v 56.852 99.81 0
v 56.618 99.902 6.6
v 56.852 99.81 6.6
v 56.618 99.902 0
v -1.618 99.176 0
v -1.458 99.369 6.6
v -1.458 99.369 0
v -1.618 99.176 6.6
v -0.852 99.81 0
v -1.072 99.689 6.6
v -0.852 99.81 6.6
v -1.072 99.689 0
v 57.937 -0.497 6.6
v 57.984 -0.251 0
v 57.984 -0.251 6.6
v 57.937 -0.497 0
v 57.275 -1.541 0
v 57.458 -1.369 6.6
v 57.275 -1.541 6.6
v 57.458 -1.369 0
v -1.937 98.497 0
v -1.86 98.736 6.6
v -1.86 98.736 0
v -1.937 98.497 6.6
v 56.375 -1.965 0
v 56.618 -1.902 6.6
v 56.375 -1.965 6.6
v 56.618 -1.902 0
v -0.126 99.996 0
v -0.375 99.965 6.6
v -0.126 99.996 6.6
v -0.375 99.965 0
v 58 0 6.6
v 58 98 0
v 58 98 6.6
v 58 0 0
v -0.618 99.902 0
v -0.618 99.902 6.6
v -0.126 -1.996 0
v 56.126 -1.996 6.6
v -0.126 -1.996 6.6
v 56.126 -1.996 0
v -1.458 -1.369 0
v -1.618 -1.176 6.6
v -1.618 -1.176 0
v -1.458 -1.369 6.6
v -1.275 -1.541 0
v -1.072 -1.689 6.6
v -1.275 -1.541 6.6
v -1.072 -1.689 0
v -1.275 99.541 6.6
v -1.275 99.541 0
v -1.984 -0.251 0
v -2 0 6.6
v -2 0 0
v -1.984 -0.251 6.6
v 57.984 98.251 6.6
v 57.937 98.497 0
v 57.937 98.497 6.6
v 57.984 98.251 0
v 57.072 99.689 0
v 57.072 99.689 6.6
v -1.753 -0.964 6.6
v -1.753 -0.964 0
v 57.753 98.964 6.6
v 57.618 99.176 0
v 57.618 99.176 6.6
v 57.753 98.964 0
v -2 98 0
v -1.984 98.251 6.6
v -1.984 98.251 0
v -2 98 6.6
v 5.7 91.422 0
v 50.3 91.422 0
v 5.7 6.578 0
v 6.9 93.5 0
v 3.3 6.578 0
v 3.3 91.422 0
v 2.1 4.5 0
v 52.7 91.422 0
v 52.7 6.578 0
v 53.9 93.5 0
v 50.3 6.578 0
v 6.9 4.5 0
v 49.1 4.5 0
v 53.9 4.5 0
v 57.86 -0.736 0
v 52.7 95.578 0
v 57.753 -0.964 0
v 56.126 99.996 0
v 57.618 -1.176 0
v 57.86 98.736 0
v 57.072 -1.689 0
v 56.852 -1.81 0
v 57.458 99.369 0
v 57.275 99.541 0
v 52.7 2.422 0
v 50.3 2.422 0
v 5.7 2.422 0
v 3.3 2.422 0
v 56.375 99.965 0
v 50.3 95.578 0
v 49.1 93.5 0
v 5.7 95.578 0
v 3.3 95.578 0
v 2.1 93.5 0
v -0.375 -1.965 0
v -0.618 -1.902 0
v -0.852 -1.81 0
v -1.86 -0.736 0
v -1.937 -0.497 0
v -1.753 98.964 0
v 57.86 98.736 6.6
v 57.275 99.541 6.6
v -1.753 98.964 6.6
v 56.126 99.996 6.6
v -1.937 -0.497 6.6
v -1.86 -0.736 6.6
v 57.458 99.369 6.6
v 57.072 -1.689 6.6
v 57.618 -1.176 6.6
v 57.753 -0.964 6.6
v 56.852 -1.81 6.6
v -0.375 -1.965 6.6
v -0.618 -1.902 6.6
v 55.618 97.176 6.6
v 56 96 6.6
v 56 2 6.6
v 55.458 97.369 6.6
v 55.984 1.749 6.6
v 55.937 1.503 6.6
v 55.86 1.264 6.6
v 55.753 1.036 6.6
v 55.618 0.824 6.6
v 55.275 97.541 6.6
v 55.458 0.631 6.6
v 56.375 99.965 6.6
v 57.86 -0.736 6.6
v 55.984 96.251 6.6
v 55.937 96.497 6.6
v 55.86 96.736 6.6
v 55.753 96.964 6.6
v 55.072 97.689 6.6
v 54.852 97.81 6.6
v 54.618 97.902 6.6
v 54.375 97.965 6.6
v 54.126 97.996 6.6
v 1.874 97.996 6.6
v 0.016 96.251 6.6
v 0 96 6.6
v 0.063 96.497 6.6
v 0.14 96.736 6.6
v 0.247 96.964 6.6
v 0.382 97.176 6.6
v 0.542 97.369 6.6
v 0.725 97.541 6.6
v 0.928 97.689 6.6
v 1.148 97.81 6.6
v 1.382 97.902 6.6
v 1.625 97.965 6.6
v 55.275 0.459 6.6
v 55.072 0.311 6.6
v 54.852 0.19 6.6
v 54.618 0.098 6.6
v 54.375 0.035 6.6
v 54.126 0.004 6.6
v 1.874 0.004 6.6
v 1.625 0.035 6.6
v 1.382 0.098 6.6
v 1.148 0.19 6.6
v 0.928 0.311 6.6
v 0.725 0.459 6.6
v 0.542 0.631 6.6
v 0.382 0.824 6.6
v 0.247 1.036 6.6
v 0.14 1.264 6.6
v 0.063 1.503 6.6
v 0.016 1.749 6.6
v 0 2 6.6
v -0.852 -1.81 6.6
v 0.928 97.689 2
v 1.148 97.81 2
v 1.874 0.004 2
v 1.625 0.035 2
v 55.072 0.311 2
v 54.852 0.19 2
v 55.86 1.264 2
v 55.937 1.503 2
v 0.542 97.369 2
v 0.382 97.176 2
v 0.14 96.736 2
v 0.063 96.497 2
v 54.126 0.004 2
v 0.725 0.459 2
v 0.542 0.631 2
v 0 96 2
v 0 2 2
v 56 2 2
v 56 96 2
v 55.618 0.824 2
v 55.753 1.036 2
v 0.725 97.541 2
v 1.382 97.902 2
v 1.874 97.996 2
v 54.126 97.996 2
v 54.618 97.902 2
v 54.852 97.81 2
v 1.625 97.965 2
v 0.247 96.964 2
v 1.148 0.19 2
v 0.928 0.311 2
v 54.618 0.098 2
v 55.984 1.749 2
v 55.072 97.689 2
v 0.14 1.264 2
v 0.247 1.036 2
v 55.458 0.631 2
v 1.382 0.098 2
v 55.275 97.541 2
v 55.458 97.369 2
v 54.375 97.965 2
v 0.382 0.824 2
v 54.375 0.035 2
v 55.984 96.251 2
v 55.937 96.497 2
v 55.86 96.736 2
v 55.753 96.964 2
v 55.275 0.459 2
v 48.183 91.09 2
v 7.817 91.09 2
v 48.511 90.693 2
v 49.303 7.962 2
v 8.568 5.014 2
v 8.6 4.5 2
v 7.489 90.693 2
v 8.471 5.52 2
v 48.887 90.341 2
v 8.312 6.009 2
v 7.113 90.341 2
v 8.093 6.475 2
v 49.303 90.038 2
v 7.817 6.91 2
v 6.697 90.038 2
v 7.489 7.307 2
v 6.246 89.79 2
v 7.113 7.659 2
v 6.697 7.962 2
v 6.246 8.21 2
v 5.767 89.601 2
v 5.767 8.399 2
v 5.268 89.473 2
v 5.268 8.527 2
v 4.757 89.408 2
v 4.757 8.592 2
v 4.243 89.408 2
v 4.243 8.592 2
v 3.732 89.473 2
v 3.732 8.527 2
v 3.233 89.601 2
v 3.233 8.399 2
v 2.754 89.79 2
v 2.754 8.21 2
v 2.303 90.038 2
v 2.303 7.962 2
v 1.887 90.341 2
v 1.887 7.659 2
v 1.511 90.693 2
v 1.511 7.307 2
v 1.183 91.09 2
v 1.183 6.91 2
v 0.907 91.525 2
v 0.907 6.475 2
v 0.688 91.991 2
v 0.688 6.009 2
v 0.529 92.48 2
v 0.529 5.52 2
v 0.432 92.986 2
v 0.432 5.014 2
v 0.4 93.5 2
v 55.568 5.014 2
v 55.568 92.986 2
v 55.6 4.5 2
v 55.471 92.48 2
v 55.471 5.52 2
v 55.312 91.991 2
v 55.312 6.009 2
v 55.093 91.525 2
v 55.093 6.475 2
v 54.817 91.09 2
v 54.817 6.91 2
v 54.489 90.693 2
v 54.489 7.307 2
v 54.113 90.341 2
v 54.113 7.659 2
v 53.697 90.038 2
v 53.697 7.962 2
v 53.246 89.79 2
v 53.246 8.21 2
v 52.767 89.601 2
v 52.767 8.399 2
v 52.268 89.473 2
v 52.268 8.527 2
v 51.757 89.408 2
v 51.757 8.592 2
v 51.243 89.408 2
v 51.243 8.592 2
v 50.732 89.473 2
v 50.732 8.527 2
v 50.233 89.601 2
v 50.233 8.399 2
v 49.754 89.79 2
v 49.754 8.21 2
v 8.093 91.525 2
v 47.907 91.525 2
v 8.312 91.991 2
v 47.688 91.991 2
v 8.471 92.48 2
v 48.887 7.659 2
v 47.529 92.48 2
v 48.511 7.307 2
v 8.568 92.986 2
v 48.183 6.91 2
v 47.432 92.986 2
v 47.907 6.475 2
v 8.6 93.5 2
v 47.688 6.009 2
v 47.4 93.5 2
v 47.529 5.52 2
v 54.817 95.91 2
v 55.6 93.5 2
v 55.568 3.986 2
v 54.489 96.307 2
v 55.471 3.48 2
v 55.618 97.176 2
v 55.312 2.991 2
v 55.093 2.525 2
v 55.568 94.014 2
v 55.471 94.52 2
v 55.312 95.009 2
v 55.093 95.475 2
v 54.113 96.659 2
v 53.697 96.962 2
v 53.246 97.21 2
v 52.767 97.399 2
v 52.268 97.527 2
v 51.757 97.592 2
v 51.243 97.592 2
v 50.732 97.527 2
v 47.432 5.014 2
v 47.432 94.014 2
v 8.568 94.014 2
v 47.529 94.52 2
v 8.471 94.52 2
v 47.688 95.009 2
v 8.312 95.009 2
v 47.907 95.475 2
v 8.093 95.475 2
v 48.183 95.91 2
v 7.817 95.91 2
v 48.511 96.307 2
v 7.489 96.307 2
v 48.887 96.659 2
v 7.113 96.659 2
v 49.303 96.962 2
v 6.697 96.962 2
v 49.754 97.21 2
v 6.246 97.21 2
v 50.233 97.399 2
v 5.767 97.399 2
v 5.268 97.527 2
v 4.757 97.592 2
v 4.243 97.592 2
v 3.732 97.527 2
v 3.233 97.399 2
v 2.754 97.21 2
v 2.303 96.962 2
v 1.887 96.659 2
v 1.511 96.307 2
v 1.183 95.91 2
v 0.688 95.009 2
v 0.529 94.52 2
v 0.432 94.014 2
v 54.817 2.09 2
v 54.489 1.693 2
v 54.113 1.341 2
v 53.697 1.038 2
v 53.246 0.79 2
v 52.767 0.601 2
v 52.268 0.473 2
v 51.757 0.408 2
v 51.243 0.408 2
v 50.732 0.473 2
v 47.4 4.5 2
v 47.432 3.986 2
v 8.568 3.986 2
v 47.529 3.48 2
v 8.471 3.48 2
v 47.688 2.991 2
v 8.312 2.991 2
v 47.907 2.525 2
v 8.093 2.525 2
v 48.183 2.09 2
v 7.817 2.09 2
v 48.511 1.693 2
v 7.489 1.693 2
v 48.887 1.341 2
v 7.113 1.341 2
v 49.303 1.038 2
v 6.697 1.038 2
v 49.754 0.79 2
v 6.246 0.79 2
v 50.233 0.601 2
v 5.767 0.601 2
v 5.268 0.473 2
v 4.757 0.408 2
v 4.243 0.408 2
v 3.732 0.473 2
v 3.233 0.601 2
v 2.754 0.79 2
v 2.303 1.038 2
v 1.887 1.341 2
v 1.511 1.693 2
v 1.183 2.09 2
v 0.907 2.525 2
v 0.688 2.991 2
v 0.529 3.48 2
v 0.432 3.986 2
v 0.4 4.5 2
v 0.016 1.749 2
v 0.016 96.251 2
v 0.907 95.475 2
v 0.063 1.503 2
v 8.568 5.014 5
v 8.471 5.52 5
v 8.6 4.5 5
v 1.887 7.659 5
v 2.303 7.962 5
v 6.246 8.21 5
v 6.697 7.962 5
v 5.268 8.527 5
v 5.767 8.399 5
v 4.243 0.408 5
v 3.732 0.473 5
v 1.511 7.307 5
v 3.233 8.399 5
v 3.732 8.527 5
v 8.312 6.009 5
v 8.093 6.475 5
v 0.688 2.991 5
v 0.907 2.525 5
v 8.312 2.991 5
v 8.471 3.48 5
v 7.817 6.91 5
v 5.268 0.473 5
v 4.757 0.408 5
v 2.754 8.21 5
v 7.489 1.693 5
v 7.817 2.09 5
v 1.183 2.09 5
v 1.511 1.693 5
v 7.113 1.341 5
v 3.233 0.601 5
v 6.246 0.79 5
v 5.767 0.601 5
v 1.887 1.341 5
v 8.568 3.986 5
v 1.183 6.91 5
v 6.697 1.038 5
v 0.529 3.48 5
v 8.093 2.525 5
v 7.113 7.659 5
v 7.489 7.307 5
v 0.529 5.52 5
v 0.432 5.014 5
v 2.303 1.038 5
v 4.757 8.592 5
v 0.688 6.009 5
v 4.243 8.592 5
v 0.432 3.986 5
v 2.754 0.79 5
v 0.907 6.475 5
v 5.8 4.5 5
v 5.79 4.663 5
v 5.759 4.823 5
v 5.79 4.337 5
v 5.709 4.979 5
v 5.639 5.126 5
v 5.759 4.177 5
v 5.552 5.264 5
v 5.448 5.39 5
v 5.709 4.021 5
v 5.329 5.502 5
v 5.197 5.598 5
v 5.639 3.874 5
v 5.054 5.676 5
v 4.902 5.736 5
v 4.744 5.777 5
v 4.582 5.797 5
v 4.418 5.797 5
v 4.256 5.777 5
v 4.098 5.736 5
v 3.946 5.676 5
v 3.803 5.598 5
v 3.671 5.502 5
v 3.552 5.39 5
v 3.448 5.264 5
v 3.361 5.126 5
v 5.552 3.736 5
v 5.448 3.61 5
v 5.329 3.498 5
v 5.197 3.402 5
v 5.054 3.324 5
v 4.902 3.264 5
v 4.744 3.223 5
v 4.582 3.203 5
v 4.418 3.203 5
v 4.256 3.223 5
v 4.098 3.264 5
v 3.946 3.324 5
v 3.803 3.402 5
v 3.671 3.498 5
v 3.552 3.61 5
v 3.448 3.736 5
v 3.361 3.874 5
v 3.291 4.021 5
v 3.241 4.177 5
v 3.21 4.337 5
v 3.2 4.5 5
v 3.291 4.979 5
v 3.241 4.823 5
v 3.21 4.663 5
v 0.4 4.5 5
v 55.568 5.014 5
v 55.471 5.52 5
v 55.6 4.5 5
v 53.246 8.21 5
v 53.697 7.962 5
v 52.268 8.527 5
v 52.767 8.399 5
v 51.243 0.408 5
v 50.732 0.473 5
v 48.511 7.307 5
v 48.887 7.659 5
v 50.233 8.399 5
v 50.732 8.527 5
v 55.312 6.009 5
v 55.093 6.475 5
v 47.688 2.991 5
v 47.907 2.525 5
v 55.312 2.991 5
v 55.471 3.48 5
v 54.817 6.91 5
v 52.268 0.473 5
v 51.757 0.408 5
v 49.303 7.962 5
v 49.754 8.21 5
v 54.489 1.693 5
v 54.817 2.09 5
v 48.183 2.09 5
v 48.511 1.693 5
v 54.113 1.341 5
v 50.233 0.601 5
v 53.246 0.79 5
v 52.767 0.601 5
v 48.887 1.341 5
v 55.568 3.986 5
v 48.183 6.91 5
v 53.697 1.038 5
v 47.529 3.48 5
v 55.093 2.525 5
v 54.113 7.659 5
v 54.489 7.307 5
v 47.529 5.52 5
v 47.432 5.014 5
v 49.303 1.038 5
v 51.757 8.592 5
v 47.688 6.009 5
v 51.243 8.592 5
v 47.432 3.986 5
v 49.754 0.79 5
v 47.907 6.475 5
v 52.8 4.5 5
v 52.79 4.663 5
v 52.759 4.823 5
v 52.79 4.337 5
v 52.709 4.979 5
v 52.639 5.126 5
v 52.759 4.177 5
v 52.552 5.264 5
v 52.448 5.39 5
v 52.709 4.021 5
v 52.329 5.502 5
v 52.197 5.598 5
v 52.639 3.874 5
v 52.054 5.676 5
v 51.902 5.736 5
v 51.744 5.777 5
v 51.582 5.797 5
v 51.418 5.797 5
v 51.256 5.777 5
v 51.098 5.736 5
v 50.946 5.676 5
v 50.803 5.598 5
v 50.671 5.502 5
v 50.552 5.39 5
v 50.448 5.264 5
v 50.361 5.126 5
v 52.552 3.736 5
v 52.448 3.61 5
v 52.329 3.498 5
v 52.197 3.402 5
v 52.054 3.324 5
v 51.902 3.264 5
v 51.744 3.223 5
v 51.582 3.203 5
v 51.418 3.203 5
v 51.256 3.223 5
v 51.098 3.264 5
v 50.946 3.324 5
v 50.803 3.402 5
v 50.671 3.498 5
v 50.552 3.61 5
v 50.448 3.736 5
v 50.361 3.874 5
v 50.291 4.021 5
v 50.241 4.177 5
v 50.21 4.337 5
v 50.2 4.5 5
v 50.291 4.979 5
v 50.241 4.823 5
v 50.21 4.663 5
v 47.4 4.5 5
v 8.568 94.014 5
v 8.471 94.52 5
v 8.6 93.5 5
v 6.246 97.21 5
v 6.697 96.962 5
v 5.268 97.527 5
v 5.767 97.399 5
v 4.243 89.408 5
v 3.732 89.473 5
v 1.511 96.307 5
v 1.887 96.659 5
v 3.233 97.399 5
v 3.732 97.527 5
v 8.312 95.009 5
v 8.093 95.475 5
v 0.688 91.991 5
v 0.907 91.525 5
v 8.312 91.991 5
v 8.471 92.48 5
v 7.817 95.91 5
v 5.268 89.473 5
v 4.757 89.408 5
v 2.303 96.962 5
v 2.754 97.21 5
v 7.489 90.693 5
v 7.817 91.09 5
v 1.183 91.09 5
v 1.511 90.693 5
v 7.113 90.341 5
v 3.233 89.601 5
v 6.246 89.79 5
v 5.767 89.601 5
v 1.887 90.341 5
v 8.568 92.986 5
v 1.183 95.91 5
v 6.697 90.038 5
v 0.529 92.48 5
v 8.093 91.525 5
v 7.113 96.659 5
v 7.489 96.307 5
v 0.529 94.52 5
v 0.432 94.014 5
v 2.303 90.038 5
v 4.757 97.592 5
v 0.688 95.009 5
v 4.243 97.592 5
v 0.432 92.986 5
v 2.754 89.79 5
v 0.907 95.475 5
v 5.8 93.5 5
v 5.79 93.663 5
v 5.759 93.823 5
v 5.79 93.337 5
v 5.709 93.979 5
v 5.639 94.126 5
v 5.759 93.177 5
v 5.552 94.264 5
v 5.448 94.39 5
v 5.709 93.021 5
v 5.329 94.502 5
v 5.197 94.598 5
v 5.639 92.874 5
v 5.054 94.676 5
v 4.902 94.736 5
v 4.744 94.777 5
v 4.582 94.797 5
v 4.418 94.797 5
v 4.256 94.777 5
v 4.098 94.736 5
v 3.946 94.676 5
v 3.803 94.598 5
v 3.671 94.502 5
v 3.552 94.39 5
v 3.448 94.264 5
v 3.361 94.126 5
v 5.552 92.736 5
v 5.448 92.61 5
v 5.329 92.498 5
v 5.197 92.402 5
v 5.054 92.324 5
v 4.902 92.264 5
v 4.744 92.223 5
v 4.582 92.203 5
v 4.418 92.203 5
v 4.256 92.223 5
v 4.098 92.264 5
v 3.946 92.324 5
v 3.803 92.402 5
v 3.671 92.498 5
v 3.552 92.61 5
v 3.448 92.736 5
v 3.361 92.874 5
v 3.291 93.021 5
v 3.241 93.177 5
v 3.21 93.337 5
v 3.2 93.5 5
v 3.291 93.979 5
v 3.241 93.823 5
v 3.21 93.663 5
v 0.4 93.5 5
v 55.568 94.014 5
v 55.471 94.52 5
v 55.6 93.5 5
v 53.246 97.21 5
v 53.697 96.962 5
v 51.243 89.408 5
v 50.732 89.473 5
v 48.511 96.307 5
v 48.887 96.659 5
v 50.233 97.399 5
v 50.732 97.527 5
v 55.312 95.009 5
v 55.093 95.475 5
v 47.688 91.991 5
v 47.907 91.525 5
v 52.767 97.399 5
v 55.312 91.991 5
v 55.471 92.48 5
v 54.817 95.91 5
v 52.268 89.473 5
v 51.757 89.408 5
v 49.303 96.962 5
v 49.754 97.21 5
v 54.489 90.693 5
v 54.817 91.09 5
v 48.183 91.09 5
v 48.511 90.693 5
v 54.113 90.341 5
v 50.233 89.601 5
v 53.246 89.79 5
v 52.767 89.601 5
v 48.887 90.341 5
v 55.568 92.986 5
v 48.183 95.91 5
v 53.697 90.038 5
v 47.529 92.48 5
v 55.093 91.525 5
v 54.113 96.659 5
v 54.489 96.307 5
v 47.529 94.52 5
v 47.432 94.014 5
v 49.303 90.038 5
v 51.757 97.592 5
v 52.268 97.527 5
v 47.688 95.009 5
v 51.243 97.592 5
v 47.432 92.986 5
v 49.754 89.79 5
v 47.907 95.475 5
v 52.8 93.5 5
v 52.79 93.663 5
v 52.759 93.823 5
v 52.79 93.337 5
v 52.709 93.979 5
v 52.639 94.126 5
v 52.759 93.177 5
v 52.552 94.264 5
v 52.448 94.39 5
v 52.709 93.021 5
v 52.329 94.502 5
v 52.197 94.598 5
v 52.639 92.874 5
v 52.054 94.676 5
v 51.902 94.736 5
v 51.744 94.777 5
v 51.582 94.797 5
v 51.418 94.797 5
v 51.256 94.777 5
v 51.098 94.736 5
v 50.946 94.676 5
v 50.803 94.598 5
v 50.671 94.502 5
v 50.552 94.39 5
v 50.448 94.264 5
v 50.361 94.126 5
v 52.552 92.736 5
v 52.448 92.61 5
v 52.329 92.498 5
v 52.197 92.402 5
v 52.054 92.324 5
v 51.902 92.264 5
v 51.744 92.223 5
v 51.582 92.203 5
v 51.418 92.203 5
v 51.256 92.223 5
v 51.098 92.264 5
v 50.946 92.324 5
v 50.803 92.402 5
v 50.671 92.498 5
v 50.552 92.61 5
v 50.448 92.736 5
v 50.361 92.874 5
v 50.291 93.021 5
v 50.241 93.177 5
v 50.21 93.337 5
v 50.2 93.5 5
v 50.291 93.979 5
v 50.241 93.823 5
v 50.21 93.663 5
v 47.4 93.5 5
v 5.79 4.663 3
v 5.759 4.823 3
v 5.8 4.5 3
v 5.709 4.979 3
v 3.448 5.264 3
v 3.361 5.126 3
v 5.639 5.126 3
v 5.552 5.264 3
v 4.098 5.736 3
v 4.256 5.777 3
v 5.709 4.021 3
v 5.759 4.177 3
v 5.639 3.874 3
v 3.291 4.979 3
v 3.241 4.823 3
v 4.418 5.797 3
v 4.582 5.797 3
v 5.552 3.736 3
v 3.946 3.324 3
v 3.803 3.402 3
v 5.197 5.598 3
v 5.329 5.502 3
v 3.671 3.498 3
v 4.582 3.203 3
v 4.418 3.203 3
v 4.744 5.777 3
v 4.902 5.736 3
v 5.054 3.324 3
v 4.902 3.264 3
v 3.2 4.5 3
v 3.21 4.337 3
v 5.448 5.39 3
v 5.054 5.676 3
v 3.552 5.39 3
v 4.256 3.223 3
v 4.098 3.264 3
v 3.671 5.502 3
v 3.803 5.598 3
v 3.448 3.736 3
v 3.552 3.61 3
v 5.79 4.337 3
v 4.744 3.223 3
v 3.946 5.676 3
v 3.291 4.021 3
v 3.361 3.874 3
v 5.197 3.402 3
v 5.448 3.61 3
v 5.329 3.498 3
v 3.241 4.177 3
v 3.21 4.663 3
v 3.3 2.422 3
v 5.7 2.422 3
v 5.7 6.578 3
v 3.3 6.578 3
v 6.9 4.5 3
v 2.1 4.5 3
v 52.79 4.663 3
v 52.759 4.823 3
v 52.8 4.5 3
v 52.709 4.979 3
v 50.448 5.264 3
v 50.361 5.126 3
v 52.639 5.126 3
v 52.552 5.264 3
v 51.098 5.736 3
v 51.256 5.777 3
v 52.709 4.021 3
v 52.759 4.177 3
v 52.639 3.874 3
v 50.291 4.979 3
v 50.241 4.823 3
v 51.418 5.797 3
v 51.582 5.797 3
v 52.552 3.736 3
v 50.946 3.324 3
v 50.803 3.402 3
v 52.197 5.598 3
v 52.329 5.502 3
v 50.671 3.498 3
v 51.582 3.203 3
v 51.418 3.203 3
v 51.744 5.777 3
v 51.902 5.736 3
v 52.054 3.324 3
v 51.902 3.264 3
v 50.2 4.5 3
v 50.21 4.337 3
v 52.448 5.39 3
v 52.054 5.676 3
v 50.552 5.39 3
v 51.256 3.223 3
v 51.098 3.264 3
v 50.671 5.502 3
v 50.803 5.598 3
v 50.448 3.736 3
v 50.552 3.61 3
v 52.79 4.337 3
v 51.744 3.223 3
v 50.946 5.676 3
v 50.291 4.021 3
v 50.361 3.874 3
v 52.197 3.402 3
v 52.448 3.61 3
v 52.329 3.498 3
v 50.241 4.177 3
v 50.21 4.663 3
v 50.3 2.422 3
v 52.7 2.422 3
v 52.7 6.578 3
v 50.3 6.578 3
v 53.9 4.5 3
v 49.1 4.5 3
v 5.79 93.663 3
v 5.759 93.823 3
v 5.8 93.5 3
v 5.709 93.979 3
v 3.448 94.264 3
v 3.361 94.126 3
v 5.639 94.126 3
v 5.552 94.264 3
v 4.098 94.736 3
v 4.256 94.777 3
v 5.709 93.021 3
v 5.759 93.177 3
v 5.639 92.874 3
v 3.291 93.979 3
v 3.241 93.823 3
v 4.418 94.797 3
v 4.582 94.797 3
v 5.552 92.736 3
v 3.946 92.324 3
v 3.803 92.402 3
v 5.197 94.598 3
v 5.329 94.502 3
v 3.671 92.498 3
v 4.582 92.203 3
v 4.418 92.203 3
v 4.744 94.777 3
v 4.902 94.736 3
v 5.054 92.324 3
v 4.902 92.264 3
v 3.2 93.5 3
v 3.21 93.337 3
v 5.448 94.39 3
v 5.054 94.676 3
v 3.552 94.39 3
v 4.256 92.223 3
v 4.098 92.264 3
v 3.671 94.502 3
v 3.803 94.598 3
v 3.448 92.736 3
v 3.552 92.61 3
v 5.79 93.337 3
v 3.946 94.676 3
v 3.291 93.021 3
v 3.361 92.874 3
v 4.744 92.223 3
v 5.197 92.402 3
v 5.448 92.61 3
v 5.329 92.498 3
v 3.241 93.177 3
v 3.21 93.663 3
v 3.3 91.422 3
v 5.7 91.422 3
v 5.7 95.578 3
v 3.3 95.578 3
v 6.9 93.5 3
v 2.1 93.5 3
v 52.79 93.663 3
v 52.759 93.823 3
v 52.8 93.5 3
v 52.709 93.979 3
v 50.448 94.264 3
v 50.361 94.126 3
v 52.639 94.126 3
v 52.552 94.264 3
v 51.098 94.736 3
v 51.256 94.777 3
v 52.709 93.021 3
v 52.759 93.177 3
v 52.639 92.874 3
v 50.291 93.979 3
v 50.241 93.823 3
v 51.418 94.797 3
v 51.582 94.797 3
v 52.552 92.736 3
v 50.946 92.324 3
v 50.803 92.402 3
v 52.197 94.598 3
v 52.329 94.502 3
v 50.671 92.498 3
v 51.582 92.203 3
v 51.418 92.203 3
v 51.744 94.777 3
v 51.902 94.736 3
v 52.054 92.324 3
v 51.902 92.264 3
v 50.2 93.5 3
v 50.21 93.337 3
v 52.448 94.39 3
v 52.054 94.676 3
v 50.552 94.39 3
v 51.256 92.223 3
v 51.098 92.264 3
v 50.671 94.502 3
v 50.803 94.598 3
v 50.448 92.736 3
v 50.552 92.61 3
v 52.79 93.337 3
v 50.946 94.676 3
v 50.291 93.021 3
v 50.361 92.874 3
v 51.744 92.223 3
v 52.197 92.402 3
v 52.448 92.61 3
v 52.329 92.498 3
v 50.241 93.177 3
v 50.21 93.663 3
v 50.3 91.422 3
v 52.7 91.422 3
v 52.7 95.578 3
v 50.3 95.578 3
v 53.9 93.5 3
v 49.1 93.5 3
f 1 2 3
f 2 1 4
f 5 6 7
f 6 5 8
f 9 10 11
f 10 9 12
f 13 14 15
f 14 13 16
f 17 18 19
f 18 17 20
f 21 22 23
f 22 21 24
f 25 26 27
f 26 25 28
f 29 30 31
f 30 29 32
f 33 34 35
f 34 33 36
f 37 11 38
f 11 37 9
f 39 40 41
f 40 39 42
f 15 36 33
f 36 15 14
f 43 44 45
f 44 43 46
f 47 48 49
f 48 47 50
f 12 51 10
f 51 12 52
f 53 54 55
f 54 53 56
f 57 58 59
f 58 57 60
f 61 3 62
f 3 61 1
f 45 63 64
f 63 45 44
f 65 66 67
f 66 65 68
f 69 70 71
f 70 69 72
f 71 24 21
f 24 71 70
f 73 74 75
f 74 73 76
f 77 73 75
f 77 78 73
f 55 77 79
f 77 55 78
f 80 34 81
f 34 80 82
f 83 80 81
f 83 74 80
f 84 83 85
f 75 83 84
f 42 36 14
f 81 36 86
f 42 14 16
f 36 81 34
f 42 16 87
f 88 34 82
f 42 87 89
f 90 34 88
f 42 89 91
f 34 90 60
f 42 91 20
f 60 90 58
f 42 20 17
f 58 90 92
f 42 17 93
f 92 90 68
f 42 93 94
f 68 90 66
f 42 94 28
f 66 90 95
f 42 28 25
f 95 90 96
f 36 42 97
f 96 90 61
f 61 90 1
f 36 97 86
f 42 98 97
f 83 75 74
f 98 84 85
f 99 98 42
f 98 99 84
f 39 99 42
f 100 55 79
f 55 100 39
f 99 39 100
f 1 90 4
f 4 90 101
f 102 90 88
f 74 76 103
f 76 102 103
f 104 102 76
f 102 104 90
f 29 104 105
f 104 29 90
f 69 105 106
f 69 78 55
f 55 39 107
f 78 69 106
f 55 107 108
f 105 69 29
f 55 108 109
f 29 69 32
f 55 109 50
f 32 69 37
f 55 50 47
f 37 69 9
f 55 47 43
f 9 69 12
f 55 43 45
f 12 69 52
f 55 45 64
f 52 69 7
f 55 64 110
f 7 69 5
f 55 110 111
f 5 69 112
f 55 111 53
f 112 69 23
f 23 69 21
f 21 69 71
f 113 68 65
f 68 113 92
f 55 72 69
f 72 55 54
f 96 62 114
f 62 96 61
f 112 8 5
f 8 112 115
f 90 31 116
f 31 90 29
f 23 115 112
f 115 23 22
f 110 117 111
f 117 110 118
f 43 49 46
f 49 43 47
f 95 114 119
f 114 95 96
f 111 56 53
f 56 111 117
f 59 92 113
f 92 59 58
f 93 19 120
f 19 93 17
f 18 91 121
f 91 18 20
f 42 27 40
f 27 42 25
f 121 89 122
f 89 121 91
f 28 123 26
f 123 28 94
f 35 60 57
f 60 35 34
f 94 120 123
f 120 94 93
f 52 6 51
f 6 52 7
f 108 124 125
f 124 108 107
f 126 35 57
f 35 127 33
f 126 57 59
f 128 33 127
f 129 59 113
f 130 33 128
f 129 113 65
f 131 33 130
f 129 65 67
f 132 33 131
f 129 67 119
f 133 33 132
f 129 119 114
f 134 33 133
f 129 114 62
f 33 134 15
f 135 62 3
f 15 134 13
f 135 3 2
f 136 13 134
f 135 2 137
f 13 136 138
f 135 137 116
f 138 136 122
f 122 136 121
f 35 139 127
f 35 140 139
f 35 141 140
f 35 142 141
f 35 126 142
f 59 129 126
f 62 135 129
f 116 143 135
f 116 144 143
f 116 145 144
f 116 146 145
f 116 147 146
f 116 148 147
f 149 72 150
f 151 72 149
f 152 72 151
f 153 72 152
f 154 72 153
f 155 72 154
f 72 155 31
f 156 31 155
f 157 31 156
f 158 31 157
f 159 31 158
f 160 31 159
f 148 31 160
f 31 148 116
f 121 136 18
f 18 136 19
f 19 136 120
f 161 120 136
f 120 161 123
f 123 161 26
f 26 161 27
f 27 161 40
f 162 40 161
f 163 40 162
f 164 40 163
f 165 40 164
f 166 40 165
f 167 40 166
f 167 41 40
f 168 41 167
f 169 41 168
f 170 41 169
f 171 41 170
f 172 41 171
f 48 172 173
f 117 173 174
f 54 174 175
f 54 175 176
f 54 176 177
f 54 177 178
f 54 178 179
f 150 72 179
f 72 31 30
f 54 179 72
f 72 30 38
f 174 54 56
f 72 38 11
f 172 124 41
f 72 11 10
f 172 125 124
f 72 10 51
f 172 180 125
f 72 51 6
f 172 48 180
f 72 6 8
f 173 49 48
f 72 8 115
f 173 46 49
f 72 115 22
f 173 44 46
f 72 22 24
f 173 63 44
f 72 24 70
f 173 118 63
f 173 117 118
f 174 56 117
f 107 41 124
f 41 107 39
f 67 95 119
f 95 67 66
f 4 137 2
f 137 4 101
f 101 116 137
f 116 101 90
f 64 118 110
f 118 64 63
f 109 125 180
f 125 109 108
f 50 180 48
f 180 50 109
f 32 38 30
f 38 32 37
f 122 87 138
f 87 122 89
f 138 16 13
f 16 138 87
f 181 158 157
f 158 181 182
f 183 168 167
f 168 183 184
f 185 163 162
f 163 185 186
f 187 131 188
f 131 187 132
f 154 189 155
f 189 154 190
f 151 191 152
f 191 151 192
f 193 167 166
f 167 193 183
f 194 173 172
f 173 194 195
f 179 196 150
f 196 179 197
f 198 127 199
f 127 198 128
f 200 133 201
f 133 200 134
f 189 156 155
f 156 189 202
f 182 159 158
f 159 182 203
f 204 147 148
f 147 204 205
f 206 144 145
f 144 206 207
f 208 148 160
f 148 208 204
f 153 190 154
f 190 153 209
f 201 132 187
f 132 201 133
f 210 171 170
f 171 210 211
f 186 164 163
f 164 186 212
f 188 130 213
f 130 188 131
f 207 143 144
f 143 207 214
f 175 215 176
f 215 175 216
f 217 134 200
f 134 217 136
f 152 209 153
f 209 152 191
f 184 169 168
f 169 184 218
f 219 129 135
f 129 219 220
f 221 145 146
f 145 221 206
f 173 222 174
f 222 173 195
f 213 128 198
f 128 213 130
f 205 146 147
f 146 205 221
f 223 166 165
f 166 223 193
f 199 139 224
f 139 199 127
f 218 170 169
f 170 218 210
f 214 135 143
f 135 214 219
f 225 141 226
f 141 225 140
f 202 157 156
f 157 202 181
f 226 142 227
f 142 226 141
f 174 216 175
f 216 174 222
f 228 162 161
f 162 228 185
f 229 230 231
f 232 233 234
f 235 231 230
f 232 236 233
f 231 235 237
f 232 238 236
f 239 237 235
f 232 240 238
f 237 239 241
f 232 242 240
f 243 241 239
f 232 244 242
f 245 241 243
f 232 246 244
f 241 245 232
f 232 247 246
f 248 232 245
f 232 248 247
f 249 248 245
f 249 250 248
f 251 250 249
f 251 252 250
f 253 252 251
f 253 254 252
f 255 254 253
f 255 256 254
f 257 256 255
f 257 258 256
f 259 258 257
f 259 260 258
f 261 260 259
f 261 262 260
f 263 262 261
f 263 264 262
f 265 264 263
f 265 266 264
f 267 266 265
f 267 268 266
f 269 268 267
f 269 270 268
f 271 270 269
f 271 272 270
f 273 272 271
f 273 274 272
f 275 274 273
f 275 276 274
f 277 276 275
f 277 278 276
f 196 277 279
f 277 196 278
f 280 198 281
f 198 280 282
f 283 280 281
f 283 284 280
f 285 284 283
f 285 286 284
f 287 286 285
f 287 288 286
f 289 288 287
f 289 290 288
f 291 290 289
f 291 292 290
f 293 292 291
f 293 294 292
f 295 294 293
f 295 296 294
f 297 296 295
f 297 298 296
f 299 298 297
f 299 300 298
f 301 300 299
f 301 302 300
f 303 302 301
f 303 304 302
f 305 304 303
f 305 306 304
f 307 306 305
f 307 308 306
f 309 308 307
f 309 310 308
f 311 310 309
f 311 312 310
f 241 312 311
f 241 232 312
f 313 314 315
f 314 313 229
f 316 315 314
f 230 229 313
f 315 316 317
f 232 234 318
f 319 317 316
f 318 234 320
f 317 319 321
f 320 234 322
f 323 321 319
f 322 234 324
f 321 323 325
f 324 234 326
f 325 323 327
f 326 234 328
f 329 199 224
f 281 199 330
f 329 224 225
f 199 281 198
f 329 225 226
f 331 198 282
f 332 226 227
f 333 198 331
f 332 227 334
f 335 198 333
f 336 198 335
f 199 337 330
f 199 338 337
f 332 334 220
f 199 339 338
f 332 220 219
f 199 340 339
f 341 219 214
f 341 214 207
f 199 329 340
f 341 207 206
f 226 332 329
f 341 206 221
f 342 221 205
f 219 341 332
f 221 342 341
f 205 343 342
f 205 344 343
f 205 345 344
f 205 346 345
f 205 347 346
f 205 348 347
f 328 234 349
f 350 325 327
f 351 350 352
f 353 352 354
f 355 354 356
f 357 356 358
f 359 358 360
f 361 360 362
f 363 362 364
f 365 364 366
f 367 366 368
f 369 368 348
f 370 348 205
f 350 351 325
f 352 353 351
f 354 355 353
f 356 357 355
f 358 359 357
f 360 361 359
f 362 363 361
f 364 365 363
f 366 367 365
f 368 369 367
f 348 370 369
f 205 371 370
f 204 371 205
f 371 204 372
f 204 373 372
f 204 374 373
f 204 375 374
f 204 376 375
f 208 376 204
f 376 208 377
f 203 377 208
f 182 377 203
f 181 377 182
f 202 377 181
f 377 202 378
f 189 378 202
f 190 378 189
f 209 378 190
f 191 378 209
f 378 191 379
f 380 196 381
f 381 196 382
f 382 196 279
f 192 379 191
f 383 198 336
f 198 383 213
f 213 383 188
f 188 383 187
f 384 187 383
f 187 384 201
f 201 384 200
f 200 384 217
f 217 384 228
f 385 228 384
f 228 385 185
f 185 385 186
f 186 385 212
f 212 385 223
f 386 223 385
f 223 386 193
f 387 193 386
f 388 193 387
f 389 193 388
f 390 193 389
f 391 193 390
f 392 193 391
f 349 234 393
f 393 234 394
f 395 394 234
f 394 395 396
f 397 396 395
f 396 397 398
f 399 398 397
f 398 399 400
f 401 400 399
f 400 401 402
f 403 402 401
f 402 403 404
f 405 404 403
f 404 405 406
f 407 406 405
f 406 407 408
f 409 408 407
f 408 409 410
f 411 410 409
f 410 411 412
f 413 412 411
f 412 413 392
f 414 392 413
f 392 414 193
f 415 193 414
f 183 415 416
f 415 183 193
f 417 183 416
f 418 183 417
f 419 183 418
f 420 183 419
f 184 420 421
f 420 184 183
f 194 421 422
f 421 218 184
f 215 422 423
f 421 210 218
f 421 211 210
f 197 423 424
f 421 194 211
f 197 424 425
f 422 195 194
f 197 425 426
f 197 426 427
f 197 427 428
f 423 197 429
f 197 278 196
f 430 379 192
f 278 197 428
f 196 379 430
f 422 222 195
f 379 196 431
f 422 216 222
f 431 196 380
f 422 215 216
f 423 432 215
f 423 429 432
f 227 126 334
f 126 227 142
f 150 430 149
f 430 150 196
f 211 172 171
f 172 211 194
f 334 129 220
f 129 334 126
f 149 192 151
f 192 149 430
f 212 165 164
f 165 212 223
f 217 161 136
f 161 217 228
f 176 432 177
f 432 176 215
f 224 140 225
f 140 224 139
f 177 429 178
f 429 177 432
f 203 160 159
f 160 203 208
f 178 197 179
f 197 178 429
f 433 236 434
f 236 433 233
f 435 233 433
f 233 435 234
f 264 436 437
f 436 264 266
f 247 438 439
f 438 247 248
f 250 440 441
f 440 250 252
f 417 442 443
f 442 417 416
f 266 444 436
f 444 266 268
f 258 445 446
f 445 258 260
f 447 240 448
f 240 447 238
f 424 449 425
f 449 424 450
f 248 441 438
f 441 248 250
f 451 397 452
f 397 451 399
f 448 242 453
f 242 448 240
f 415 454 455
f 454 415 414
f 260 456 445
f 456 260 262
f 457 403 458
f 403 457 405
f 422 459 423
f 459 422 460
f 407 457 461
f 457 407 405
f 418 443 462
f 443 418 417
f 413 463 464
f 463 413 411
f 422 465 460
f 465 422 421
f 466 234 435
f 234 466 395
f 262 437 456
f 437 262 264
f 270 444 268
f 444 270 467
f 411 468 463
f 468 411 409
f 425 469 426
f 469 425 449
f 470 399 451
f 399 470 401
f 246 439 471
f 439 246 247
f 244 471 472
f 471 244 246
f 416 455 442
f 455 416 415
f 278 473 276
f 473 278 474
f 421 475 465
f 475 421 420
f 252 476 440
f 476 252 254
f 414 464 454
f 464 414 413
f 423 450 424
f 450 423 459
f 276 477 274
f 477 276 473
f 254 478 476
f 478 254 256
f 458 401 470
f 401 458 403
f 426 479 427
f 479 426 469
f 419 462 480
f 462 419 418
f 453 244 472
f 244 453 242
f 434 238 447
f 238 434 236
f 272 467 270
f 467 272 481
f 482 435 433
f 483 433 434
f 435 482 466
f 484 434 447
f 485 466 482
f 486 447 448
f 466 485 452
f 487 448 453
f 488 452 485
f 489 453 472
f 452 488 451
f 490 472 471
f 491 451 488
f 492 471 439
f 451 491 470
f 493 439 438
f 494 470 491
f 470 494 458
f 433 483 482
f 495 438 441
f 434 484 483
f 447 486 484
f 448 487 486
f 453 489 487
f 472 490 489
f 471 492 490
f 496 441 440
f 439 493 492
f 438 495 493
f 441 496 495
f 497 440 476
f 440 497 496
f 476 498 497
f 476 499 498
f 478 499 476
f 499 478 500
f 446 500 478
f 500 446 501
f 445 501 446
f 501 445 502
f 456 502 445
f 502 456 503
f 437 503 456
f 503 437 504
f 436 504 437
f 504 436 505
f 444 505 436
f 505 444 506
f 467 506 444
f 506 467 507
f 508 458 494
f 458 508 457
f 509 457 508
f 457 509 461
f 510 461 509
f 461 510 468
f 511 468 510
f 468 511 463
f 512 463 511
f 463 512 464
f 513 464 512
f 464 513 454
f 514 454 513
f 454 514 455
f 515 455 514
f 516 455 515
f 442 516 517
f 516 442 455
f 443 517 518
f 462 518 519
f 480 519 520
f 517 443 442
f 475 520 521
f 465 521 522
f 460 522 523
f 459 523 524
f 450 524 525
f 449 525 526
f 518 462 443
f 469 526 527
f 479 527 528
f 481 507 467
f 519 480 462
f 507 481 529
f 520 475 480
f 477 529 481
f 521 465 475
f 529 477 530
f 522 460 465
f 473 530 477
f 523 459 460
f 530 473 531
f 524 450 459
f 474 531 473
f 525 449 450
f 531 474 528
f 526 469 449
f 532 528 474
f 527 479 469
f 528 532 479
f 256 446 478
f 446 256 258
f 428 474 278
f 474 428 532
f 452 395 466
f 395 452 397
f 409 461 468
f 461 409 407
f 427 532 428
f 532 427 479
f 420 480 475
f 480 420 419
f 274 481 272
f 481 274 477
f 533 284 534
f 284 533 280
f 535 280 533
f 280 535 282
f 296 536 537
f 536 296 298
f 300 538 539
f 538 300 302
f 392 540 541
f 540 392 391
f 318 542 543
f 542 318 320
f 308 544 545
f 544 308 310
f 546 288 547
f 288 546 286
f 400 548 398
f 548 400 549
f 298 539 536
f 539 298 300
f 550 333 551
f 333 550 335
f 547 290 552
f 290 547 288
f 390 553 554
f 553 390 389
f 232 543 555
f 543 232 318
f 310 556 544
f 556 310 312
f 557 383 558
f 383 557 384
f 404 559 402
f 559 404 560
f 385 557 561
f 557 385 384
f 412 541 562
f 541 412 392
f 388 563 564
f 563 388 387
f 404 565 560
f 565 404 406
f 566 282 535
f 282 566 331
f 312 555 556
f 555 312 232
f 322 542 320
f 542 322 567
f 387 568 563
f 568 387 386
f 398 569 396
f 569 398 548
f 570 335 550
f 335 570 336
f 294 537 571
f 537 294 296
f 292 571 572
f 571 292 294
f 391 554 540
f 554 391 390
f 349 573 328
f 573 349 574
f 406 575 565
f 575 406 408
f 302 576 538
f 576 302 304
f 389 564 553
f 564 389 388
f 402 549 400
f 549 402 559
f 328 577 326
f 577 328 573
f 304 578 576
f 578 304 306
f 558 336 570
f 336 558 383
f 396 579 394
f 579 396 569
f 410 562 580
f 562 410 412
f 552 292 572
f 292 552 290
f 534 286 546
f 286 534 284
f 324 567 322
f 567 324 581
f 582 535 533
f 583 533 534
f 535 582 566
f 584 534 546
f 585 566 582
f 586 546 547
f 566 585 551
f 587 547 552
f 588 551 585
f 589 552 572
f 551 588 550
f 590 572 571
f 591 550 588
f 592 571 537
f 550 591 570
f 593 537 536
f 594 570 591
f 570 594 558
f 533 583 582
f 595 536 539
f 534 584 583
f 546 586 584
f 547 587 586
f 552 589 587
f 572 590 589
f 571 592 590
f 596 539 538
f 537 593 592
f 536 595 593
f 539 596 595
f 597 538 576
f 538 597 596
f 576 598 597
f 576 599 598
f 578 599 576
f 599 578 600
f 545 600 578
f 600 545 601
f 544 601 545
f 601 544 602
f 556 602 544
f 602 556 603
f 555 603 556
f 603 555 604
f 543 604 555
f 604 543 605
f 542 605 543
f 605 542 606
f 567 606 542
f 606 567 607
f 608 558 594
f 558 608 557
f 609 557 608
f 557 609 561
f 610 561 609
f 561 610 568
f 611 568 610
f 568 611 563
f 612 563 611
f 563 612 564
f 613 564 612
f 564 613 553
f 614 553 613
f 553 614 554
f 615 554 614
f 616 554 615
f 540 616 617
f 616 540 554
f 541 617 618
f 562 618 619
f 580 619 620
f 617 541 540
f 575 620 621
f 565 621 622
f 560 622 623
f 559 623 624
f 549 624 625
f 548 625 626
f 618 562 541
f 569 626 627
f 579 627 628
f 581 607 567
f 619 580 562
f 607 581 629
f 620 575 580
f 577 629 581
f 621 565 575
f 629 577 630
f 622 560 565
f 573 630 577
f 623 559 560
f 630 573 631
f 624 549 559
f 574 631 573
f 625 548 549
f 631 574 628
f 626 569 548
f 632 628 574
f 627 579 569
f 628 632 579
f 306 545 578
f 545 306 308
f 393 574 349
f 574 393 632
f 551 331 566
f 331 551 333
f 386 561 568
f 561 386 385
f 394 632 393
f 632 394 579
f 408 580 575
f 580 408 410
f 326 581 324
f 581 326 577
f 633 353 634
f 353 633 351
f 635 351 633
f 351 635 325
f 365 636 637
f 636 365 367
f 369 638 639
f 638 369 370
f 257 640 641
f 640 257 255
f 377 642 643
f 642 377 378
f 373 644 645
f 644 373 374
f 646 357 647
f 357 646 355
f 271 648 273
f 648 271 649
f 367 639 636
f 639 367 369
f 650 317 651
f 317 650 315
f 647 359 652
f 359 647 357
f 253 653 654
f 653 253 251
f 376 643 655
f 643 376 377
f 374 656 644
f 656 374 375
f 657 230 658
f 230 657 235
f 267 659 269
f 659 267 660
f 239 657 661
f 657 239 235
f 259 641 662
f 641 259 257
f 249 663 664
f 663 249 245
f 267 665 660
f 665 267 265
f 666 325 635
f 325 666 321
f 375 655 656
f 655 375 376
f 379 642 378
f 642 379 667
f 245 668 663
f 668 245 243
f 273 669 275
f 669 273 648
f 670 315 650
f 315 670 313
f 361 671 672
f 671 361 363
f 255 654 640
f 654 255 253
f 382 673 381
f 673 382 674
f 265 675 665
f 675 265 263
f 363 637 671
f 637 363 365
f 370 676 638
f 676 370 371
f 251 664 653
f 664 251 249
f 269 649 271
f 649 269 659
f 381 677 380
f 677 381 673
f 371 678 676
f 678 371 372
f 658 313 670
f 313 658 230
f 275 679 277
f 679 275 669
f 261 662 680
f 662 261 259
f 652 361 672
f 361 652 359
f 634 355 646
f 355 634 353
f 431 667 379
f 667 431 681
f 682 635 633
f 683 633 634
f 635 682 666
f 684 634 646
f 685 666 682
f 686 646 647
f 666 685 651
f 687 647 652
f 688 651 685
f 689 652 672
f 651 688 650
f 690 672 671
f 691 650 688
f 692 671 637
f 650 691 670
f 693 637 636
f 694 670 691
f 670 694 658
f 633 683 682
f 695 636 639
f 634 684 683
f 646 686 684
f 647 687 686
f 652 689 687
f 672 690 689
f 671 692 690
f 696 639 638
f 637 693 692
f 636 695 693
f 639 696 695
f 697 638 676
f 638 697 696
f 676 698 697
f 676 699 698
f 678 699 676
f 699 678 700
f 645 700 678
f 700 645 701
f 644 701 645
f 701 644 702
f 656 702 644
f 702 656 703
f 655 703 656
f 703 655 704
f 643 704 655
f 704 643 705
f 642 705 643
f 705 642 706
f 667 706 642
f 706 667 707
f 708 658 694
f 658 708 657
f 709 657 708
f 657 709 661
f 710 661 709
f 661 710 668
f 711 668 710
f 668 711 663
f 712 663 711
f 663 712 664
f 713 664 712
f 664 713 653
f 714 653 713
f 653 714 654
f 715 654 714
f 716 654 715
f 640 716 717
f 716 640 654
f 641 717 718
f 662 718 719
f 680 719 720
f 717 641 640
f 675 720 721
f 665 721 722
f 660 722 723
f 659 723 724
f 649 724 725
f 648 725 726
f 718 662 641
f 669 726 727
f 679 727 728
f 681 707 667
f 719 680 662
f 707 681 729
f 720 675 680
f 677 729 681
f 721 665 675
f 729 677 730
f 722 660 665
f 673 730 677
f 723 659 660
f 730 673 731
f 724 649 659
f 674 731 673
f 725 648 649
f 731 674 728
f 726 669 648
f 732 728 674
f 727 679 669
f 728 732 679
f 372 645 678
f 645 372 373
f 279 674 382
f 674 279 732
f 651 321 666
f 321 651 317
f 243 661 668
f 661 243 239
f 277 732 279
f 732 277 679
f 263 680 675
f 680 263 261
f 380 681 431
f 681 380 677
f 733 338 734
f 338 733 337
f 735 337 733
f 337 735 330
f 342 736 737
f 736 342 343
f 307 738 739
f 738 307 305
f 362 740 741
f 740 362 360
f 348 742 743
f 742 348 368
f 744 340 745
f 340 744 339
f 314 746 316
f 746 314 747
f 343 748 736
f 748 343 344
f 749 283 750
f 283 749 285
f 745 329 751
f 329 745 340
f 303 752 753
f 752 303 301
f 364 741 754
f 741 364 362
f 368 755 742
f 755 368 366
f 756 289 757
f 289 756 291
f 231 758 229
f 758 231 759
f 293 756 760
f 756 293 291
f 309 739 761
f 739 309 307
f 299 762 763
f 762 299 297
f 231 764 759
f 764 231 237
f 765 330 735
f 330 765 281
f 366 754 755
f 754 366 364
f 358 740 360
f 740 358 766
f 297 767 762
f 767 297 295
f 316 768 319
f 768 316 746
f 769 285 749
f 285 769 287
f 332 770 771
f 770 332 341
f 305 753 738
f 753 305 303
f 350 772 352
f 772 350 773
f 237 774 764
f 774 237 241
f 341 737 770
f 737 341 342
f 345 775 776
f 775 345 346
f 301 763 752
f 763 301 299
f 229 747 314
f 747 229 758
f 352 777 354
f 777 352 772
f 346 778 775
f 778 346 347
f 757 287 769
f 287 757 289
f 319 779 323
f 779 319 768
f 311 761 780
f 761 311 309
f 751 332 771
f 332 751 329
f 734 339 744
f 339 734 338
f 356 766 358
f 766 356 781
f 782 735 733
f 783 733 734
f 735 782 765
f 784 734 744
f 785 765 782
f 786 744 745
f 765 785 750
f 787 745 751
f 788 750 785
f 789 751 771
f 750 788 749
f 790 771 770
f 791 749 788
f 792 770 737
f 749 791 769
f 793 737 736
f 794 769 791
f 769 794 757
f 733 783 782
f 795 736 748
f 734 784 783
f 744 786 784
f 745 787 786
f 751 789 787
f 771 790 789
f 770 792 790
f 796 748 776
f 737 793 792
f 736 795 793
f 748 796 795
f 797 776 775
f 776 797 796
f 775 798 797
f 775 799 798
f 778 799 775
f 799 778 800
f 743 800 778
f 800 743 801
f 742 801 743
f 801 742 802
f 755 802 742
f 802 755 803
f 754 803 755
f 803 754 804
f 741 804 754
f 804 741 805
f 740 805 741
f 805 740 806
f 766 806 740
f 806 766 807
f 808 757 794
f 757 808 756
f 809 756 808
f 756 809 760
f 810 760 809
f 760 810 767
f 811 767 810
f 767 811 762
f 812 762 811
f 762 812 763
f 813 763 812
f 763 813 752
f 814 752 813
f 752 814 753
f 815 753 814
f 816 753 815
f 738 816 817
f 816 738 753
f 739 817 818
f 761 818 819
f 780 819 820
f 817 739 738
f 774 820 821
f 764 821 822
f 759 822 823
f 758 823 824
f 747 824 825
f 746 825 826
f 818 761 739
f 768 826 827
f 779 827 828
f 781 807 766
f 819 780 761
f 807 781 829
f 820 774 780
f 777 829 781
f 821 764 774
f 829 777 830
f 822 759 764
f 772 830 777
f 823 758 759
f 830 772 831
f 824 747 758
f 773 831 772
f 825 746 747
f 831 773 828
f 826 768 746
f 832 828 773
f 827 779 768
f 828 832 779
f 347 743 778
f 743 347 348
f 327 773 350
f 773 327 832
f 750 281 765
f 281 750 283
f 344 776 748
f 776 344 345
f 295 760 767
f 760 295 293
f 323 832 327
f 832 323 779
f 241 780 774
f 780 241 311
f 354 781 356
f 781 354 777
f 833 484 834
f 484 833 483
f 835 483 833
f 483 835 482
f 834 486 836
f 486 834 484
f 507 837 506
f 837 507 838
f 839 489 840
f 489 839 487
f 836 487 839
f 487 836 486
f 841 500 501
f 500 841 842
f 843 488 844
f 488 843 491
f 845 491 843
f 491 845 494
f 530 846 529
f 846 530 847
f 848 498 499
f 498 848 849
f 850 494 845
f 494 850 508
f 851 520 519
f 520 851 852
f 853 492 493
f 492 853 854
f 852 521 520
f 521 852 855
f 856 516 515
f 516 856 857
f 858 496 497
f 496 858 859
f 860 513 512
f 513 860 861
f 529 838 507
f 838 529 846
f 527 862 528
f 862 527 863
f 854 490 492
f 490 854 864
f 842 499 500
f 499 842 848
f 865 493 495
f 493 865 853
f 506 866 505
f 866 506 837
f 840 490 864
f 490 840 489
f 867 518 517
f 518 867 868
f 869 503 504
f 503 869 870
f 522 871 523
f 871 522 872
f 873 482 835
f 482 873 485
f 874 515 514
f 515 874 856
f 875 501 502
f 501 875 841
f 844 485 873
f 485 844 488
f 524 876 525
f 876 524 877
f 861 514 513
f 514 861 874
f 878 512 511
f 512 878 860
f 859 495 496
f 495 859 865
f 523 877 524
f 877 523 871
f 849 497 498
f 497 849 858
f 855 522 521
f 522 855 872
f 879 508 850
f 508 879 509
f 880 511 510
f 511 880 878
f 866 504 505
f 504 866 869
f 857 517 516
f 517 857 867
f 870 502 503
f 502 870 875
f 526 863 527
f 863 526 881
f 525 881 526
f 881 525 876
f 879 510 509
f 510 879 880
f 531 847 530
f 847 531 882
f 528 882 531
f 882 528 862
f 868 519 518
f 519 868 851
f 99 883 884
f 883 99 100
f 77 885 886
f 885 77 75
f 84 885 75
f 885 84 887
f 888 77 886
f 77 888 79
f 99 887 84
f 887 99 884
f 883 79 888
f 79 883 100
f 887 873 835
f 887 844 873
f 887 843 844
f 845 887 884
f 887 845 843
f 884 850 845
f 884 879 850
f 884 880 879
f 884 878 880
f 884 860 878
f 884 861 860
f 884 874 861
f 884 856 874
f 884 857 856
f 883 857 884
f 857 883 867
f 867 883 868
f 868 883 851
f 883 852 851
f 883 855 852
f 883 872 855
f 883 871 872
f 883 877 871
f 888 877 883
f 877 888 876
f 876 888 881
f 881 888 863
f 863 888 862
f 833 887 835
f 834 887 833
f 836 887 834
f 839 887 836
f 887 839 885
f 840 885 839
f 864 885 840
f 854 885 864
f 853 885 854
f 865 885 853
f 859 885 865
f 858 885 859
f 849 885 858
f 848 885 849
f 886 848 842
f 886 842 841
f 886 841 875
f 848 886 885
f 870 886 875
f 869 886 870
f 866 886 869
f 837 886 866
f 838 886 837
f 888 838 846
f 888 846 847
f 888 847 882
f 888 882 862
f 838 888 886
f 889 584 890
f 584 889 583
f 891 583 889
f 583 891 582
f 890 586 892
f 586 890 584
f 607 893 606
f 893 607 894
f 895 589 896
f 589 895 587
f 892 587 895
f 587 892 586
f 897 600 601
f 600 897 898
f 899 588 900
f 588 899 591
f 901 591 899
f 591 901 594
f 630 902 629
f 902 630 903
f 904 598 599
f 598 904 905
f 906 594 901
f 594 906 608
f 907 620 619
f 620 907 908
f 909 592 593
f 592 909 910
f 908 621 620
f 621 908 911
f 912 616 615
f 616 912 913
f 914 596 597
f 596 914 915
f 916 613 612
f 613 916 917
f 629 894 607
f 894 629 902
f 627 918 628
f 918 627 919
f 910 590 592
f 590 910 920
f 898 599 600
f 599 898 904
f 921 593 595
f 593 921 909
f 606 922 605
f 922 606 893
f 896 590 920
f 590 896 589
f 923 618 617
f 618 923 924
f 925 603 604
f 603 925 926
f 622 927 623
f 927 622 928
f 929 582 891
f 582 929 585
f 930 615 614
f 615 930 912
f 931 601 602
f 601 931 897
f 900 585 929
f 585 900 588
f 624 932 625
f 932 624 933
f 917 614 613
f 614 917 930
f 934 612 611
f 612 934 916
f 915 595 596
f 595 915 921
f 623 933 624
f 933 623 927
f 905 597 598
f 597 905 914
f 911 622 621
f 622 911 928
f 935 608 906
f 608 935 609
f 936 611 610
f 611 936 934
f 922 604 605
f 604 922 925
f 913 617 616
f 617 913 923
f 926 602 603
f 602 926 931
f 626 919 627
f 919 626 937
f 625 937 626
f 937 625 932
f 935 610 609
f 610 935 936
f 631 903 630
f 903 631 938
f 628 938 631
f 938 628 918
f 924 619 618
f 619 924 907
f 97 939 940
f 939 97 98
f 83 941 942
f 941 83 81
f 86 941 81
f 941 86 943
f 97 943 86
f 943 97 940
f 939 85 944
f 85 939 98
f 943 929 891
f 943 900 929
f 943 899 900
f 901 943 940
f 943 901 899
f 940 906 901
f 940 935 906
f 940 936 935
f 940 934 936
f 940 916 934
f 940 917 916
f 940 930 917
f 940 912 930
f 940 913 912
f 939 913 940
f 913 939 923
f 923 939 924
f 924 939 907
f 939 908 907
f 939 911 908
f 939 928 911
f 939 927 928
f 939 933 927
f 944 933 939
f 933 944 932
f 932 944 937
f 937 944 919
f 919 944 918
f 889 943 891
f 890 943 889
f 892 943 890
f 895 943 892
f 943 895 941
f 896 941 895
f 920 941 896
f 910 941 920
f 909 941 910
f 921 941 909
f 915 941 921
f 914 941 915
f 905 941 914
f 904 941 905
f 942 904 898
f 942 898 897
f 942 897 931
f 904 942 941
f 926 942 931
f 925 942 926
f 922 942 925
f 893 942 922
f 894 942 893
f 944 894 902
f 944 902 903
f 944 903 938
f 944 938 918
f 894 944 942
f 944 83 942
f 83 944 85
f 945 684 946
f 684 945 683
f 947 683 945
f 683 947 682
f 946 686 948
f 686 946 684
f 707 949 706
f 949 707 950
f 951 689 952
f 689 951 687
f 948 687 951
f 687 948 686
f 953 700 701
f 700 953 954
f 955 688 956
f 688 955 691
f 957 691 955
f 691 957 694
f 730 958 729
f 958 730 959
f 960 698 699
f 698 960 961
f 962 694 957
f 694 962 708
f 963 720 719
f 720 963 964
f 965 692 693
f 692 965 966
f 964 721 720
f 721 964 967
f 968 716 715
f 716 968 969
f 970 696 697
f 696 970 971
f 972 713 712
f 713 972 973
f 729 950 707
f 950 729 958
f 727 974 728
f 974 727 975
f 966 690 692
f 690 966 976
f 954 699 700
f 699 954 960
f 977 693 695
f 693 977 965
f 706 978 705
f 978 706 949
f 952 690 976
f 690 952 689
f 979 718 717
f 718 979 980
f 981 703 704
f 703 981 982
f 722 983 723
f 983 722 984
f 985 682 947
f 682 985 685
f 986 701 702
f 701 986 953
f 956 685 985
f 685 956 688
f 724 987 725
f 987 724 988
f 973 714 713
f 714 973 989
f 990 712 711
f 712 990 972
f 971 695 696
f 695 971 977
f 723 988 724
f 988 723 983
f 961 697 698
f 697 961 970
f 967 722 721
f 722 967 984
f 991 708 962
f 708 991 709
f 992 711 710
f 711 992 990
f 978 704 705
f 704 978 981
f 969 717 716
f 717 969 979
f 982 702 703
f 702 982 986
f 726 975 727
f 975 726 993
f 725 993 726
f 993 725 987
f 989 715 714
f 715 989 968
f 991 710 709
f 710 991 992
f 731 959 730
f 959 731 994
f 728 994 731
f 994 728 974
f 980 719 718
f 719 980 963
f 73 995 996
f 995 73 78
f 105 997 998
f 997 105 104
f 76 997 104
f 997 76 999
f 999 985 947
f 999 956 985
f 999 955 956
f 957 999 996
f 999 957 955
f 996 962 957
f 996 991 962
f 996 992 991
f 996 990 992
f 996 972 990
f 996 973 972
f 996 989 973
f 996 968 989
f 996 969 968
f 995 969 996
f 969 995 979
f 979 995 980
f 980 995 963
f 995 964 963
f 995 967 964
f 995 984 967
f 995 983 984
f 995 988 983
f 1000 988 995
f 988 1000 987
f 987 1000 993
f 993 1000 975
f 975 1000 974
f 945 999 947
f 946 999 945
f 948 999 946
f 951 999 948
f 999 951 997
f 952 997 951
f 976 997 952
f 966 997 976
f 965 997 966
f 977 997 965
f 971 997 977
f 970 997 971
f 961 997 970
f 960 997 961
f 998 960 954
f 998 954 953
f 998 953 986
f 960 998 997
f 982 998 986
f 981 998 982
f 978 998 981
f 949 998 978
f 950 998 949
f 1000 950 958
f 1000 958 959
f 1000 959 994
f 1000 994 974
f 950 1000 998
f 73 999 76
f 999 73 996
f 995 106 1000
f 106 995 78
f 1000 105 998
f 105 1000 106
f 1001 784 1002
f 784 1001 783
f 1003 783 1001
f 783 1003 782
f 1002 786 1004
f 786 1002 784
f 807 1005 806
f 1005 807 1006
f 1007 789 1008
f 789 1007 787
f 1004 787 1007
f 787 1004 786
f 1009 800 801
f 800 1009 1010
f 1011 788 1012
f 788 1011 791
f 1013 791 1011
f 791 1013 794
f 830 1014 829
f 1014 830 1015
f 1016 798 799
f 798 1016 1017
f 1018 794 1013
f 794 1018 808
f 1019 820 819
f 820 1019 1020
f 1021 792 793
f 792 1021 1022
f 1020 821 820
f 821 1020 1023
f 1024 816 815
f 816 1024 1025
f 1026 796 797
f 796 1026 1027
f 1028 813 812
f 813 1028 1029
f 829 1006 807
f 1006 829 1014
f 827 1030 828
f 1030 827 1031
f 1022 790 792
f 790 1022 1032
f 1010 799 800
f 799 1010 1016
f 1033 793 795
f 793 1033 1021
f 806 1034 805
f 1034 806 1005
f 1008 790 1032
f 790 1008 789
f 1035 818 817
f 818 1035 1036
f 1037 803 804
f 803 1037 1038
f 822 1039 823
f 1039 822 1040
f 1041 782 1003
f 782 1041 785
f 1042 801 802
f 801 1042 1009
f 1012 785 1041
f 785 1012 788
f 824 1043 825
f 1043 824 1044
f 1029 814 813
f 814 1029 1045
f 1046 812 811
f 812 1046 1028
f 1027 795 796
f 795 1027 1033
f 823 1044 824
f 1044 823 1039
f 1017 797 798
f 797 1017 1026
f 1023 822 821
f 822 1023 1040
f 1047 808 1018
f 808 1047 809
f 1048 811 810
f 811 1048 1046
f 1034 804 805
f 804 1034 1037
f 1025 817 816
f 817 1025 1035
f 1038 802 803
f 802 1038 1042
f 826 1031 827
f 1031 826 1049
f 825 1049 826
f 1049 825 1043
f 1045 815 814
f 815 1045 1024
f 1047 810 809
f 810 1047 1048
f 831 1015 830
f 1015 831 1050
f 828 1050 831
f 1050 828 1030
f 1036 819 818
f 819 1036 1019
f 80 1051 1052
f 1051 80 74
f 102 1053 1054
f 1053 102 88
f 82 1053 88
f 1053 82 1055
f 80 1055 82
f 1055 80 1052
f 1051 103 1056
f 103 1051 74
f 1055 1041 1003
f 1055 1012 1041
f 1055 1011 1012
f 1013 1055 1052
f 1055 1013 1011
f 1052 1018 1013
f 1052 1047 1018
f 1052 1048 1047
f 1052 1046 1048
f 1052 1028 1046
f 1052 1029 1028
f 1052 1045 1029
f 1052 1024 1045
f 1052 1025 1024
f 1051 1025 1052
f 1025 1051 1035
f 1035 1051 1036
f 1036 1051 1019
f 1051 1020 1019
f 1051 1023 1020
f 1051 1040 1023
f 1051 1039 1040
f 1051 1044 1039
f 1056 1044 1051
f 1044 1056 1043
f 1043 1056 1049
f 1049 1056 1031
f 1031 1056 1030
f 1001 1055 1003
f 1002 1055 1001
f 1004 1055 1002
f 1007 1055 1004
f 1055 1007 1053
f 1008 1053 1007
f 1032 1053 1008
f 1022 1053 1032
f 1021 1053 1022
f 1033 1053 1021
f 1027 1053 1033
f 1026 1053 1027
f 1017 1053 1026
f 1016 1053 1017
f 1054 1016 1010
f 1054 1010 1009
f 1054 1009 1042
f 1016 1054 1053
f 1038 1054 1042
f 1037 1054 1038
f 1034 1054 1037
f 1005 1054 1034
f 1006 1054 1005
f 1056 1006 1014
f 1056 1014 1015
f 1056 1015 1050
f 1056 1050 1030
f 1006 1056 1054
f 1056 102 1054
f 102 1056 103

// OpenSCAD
// file: common.scad
pcb_width = 98;
pcb_height = 56;
pcb_thickness = 1.6;
pcb_screw_hole_radius = 2.1;	// M4/2-margin

thickness = 2;
round_radius = 2;

width = pcb_width + thickness * 2;	// y
height = pcb_height + thickness * 2;	// x
bottom_depth = 5;	// z
top_depth = 20;		// z

screw_hole_radius = 1.1;	// M2/2
screw_posx = 4.5;
screw_posy = 4.5;

rj45 = [16, thickness*2, 13.8];
powerjack = [10, thickness*2, 12];

$fn = 50;

posx = screw_posx;
posy = screw_posy;
holes = [
    [posx, posy, 0],
    [pcb_height-posx, posy, 0],
    [posx, pcb_width-posy, 0],
    [pcb_height-posx, pcb_width-posy, 0]
];
// main file
include <common.scad>;

module case () {
    difference () {
        minkowski() {
            cube([height-round_radius*2, width-round_radius*2, bottom_depth]);
            cylinder(r=round_radius, h=pcb_thickness);
        }

        translate([round_radius,round_radius,thickness]) minkowski() {
            cube([pcb_height-round_radius*2, pcb_width-round_radius*2, bottom_depth]);
            cylinder(r=round_radius, h=1);
        }
    }

    // Screw supports
    for (hole = holes) {
        translate(hole)
            cylinder(r=screw_hole_radius+3, h=bottom_depth);
    }
}

module screw_holes() {
    for (hole = holes) {
        translate([hole[0], hole[1], -thickness])
            cylinder(r=screw_hole_radius+0.2, h=bottom_depth+thickness);

        translate([hole[0], hole[1], -bottom_depth+thickness])
            cylinder(r=2.4, h=bottom_depth-thickness+3, $fn=6);
    }
}

difference () {
    case();
    screw_holes();
}
